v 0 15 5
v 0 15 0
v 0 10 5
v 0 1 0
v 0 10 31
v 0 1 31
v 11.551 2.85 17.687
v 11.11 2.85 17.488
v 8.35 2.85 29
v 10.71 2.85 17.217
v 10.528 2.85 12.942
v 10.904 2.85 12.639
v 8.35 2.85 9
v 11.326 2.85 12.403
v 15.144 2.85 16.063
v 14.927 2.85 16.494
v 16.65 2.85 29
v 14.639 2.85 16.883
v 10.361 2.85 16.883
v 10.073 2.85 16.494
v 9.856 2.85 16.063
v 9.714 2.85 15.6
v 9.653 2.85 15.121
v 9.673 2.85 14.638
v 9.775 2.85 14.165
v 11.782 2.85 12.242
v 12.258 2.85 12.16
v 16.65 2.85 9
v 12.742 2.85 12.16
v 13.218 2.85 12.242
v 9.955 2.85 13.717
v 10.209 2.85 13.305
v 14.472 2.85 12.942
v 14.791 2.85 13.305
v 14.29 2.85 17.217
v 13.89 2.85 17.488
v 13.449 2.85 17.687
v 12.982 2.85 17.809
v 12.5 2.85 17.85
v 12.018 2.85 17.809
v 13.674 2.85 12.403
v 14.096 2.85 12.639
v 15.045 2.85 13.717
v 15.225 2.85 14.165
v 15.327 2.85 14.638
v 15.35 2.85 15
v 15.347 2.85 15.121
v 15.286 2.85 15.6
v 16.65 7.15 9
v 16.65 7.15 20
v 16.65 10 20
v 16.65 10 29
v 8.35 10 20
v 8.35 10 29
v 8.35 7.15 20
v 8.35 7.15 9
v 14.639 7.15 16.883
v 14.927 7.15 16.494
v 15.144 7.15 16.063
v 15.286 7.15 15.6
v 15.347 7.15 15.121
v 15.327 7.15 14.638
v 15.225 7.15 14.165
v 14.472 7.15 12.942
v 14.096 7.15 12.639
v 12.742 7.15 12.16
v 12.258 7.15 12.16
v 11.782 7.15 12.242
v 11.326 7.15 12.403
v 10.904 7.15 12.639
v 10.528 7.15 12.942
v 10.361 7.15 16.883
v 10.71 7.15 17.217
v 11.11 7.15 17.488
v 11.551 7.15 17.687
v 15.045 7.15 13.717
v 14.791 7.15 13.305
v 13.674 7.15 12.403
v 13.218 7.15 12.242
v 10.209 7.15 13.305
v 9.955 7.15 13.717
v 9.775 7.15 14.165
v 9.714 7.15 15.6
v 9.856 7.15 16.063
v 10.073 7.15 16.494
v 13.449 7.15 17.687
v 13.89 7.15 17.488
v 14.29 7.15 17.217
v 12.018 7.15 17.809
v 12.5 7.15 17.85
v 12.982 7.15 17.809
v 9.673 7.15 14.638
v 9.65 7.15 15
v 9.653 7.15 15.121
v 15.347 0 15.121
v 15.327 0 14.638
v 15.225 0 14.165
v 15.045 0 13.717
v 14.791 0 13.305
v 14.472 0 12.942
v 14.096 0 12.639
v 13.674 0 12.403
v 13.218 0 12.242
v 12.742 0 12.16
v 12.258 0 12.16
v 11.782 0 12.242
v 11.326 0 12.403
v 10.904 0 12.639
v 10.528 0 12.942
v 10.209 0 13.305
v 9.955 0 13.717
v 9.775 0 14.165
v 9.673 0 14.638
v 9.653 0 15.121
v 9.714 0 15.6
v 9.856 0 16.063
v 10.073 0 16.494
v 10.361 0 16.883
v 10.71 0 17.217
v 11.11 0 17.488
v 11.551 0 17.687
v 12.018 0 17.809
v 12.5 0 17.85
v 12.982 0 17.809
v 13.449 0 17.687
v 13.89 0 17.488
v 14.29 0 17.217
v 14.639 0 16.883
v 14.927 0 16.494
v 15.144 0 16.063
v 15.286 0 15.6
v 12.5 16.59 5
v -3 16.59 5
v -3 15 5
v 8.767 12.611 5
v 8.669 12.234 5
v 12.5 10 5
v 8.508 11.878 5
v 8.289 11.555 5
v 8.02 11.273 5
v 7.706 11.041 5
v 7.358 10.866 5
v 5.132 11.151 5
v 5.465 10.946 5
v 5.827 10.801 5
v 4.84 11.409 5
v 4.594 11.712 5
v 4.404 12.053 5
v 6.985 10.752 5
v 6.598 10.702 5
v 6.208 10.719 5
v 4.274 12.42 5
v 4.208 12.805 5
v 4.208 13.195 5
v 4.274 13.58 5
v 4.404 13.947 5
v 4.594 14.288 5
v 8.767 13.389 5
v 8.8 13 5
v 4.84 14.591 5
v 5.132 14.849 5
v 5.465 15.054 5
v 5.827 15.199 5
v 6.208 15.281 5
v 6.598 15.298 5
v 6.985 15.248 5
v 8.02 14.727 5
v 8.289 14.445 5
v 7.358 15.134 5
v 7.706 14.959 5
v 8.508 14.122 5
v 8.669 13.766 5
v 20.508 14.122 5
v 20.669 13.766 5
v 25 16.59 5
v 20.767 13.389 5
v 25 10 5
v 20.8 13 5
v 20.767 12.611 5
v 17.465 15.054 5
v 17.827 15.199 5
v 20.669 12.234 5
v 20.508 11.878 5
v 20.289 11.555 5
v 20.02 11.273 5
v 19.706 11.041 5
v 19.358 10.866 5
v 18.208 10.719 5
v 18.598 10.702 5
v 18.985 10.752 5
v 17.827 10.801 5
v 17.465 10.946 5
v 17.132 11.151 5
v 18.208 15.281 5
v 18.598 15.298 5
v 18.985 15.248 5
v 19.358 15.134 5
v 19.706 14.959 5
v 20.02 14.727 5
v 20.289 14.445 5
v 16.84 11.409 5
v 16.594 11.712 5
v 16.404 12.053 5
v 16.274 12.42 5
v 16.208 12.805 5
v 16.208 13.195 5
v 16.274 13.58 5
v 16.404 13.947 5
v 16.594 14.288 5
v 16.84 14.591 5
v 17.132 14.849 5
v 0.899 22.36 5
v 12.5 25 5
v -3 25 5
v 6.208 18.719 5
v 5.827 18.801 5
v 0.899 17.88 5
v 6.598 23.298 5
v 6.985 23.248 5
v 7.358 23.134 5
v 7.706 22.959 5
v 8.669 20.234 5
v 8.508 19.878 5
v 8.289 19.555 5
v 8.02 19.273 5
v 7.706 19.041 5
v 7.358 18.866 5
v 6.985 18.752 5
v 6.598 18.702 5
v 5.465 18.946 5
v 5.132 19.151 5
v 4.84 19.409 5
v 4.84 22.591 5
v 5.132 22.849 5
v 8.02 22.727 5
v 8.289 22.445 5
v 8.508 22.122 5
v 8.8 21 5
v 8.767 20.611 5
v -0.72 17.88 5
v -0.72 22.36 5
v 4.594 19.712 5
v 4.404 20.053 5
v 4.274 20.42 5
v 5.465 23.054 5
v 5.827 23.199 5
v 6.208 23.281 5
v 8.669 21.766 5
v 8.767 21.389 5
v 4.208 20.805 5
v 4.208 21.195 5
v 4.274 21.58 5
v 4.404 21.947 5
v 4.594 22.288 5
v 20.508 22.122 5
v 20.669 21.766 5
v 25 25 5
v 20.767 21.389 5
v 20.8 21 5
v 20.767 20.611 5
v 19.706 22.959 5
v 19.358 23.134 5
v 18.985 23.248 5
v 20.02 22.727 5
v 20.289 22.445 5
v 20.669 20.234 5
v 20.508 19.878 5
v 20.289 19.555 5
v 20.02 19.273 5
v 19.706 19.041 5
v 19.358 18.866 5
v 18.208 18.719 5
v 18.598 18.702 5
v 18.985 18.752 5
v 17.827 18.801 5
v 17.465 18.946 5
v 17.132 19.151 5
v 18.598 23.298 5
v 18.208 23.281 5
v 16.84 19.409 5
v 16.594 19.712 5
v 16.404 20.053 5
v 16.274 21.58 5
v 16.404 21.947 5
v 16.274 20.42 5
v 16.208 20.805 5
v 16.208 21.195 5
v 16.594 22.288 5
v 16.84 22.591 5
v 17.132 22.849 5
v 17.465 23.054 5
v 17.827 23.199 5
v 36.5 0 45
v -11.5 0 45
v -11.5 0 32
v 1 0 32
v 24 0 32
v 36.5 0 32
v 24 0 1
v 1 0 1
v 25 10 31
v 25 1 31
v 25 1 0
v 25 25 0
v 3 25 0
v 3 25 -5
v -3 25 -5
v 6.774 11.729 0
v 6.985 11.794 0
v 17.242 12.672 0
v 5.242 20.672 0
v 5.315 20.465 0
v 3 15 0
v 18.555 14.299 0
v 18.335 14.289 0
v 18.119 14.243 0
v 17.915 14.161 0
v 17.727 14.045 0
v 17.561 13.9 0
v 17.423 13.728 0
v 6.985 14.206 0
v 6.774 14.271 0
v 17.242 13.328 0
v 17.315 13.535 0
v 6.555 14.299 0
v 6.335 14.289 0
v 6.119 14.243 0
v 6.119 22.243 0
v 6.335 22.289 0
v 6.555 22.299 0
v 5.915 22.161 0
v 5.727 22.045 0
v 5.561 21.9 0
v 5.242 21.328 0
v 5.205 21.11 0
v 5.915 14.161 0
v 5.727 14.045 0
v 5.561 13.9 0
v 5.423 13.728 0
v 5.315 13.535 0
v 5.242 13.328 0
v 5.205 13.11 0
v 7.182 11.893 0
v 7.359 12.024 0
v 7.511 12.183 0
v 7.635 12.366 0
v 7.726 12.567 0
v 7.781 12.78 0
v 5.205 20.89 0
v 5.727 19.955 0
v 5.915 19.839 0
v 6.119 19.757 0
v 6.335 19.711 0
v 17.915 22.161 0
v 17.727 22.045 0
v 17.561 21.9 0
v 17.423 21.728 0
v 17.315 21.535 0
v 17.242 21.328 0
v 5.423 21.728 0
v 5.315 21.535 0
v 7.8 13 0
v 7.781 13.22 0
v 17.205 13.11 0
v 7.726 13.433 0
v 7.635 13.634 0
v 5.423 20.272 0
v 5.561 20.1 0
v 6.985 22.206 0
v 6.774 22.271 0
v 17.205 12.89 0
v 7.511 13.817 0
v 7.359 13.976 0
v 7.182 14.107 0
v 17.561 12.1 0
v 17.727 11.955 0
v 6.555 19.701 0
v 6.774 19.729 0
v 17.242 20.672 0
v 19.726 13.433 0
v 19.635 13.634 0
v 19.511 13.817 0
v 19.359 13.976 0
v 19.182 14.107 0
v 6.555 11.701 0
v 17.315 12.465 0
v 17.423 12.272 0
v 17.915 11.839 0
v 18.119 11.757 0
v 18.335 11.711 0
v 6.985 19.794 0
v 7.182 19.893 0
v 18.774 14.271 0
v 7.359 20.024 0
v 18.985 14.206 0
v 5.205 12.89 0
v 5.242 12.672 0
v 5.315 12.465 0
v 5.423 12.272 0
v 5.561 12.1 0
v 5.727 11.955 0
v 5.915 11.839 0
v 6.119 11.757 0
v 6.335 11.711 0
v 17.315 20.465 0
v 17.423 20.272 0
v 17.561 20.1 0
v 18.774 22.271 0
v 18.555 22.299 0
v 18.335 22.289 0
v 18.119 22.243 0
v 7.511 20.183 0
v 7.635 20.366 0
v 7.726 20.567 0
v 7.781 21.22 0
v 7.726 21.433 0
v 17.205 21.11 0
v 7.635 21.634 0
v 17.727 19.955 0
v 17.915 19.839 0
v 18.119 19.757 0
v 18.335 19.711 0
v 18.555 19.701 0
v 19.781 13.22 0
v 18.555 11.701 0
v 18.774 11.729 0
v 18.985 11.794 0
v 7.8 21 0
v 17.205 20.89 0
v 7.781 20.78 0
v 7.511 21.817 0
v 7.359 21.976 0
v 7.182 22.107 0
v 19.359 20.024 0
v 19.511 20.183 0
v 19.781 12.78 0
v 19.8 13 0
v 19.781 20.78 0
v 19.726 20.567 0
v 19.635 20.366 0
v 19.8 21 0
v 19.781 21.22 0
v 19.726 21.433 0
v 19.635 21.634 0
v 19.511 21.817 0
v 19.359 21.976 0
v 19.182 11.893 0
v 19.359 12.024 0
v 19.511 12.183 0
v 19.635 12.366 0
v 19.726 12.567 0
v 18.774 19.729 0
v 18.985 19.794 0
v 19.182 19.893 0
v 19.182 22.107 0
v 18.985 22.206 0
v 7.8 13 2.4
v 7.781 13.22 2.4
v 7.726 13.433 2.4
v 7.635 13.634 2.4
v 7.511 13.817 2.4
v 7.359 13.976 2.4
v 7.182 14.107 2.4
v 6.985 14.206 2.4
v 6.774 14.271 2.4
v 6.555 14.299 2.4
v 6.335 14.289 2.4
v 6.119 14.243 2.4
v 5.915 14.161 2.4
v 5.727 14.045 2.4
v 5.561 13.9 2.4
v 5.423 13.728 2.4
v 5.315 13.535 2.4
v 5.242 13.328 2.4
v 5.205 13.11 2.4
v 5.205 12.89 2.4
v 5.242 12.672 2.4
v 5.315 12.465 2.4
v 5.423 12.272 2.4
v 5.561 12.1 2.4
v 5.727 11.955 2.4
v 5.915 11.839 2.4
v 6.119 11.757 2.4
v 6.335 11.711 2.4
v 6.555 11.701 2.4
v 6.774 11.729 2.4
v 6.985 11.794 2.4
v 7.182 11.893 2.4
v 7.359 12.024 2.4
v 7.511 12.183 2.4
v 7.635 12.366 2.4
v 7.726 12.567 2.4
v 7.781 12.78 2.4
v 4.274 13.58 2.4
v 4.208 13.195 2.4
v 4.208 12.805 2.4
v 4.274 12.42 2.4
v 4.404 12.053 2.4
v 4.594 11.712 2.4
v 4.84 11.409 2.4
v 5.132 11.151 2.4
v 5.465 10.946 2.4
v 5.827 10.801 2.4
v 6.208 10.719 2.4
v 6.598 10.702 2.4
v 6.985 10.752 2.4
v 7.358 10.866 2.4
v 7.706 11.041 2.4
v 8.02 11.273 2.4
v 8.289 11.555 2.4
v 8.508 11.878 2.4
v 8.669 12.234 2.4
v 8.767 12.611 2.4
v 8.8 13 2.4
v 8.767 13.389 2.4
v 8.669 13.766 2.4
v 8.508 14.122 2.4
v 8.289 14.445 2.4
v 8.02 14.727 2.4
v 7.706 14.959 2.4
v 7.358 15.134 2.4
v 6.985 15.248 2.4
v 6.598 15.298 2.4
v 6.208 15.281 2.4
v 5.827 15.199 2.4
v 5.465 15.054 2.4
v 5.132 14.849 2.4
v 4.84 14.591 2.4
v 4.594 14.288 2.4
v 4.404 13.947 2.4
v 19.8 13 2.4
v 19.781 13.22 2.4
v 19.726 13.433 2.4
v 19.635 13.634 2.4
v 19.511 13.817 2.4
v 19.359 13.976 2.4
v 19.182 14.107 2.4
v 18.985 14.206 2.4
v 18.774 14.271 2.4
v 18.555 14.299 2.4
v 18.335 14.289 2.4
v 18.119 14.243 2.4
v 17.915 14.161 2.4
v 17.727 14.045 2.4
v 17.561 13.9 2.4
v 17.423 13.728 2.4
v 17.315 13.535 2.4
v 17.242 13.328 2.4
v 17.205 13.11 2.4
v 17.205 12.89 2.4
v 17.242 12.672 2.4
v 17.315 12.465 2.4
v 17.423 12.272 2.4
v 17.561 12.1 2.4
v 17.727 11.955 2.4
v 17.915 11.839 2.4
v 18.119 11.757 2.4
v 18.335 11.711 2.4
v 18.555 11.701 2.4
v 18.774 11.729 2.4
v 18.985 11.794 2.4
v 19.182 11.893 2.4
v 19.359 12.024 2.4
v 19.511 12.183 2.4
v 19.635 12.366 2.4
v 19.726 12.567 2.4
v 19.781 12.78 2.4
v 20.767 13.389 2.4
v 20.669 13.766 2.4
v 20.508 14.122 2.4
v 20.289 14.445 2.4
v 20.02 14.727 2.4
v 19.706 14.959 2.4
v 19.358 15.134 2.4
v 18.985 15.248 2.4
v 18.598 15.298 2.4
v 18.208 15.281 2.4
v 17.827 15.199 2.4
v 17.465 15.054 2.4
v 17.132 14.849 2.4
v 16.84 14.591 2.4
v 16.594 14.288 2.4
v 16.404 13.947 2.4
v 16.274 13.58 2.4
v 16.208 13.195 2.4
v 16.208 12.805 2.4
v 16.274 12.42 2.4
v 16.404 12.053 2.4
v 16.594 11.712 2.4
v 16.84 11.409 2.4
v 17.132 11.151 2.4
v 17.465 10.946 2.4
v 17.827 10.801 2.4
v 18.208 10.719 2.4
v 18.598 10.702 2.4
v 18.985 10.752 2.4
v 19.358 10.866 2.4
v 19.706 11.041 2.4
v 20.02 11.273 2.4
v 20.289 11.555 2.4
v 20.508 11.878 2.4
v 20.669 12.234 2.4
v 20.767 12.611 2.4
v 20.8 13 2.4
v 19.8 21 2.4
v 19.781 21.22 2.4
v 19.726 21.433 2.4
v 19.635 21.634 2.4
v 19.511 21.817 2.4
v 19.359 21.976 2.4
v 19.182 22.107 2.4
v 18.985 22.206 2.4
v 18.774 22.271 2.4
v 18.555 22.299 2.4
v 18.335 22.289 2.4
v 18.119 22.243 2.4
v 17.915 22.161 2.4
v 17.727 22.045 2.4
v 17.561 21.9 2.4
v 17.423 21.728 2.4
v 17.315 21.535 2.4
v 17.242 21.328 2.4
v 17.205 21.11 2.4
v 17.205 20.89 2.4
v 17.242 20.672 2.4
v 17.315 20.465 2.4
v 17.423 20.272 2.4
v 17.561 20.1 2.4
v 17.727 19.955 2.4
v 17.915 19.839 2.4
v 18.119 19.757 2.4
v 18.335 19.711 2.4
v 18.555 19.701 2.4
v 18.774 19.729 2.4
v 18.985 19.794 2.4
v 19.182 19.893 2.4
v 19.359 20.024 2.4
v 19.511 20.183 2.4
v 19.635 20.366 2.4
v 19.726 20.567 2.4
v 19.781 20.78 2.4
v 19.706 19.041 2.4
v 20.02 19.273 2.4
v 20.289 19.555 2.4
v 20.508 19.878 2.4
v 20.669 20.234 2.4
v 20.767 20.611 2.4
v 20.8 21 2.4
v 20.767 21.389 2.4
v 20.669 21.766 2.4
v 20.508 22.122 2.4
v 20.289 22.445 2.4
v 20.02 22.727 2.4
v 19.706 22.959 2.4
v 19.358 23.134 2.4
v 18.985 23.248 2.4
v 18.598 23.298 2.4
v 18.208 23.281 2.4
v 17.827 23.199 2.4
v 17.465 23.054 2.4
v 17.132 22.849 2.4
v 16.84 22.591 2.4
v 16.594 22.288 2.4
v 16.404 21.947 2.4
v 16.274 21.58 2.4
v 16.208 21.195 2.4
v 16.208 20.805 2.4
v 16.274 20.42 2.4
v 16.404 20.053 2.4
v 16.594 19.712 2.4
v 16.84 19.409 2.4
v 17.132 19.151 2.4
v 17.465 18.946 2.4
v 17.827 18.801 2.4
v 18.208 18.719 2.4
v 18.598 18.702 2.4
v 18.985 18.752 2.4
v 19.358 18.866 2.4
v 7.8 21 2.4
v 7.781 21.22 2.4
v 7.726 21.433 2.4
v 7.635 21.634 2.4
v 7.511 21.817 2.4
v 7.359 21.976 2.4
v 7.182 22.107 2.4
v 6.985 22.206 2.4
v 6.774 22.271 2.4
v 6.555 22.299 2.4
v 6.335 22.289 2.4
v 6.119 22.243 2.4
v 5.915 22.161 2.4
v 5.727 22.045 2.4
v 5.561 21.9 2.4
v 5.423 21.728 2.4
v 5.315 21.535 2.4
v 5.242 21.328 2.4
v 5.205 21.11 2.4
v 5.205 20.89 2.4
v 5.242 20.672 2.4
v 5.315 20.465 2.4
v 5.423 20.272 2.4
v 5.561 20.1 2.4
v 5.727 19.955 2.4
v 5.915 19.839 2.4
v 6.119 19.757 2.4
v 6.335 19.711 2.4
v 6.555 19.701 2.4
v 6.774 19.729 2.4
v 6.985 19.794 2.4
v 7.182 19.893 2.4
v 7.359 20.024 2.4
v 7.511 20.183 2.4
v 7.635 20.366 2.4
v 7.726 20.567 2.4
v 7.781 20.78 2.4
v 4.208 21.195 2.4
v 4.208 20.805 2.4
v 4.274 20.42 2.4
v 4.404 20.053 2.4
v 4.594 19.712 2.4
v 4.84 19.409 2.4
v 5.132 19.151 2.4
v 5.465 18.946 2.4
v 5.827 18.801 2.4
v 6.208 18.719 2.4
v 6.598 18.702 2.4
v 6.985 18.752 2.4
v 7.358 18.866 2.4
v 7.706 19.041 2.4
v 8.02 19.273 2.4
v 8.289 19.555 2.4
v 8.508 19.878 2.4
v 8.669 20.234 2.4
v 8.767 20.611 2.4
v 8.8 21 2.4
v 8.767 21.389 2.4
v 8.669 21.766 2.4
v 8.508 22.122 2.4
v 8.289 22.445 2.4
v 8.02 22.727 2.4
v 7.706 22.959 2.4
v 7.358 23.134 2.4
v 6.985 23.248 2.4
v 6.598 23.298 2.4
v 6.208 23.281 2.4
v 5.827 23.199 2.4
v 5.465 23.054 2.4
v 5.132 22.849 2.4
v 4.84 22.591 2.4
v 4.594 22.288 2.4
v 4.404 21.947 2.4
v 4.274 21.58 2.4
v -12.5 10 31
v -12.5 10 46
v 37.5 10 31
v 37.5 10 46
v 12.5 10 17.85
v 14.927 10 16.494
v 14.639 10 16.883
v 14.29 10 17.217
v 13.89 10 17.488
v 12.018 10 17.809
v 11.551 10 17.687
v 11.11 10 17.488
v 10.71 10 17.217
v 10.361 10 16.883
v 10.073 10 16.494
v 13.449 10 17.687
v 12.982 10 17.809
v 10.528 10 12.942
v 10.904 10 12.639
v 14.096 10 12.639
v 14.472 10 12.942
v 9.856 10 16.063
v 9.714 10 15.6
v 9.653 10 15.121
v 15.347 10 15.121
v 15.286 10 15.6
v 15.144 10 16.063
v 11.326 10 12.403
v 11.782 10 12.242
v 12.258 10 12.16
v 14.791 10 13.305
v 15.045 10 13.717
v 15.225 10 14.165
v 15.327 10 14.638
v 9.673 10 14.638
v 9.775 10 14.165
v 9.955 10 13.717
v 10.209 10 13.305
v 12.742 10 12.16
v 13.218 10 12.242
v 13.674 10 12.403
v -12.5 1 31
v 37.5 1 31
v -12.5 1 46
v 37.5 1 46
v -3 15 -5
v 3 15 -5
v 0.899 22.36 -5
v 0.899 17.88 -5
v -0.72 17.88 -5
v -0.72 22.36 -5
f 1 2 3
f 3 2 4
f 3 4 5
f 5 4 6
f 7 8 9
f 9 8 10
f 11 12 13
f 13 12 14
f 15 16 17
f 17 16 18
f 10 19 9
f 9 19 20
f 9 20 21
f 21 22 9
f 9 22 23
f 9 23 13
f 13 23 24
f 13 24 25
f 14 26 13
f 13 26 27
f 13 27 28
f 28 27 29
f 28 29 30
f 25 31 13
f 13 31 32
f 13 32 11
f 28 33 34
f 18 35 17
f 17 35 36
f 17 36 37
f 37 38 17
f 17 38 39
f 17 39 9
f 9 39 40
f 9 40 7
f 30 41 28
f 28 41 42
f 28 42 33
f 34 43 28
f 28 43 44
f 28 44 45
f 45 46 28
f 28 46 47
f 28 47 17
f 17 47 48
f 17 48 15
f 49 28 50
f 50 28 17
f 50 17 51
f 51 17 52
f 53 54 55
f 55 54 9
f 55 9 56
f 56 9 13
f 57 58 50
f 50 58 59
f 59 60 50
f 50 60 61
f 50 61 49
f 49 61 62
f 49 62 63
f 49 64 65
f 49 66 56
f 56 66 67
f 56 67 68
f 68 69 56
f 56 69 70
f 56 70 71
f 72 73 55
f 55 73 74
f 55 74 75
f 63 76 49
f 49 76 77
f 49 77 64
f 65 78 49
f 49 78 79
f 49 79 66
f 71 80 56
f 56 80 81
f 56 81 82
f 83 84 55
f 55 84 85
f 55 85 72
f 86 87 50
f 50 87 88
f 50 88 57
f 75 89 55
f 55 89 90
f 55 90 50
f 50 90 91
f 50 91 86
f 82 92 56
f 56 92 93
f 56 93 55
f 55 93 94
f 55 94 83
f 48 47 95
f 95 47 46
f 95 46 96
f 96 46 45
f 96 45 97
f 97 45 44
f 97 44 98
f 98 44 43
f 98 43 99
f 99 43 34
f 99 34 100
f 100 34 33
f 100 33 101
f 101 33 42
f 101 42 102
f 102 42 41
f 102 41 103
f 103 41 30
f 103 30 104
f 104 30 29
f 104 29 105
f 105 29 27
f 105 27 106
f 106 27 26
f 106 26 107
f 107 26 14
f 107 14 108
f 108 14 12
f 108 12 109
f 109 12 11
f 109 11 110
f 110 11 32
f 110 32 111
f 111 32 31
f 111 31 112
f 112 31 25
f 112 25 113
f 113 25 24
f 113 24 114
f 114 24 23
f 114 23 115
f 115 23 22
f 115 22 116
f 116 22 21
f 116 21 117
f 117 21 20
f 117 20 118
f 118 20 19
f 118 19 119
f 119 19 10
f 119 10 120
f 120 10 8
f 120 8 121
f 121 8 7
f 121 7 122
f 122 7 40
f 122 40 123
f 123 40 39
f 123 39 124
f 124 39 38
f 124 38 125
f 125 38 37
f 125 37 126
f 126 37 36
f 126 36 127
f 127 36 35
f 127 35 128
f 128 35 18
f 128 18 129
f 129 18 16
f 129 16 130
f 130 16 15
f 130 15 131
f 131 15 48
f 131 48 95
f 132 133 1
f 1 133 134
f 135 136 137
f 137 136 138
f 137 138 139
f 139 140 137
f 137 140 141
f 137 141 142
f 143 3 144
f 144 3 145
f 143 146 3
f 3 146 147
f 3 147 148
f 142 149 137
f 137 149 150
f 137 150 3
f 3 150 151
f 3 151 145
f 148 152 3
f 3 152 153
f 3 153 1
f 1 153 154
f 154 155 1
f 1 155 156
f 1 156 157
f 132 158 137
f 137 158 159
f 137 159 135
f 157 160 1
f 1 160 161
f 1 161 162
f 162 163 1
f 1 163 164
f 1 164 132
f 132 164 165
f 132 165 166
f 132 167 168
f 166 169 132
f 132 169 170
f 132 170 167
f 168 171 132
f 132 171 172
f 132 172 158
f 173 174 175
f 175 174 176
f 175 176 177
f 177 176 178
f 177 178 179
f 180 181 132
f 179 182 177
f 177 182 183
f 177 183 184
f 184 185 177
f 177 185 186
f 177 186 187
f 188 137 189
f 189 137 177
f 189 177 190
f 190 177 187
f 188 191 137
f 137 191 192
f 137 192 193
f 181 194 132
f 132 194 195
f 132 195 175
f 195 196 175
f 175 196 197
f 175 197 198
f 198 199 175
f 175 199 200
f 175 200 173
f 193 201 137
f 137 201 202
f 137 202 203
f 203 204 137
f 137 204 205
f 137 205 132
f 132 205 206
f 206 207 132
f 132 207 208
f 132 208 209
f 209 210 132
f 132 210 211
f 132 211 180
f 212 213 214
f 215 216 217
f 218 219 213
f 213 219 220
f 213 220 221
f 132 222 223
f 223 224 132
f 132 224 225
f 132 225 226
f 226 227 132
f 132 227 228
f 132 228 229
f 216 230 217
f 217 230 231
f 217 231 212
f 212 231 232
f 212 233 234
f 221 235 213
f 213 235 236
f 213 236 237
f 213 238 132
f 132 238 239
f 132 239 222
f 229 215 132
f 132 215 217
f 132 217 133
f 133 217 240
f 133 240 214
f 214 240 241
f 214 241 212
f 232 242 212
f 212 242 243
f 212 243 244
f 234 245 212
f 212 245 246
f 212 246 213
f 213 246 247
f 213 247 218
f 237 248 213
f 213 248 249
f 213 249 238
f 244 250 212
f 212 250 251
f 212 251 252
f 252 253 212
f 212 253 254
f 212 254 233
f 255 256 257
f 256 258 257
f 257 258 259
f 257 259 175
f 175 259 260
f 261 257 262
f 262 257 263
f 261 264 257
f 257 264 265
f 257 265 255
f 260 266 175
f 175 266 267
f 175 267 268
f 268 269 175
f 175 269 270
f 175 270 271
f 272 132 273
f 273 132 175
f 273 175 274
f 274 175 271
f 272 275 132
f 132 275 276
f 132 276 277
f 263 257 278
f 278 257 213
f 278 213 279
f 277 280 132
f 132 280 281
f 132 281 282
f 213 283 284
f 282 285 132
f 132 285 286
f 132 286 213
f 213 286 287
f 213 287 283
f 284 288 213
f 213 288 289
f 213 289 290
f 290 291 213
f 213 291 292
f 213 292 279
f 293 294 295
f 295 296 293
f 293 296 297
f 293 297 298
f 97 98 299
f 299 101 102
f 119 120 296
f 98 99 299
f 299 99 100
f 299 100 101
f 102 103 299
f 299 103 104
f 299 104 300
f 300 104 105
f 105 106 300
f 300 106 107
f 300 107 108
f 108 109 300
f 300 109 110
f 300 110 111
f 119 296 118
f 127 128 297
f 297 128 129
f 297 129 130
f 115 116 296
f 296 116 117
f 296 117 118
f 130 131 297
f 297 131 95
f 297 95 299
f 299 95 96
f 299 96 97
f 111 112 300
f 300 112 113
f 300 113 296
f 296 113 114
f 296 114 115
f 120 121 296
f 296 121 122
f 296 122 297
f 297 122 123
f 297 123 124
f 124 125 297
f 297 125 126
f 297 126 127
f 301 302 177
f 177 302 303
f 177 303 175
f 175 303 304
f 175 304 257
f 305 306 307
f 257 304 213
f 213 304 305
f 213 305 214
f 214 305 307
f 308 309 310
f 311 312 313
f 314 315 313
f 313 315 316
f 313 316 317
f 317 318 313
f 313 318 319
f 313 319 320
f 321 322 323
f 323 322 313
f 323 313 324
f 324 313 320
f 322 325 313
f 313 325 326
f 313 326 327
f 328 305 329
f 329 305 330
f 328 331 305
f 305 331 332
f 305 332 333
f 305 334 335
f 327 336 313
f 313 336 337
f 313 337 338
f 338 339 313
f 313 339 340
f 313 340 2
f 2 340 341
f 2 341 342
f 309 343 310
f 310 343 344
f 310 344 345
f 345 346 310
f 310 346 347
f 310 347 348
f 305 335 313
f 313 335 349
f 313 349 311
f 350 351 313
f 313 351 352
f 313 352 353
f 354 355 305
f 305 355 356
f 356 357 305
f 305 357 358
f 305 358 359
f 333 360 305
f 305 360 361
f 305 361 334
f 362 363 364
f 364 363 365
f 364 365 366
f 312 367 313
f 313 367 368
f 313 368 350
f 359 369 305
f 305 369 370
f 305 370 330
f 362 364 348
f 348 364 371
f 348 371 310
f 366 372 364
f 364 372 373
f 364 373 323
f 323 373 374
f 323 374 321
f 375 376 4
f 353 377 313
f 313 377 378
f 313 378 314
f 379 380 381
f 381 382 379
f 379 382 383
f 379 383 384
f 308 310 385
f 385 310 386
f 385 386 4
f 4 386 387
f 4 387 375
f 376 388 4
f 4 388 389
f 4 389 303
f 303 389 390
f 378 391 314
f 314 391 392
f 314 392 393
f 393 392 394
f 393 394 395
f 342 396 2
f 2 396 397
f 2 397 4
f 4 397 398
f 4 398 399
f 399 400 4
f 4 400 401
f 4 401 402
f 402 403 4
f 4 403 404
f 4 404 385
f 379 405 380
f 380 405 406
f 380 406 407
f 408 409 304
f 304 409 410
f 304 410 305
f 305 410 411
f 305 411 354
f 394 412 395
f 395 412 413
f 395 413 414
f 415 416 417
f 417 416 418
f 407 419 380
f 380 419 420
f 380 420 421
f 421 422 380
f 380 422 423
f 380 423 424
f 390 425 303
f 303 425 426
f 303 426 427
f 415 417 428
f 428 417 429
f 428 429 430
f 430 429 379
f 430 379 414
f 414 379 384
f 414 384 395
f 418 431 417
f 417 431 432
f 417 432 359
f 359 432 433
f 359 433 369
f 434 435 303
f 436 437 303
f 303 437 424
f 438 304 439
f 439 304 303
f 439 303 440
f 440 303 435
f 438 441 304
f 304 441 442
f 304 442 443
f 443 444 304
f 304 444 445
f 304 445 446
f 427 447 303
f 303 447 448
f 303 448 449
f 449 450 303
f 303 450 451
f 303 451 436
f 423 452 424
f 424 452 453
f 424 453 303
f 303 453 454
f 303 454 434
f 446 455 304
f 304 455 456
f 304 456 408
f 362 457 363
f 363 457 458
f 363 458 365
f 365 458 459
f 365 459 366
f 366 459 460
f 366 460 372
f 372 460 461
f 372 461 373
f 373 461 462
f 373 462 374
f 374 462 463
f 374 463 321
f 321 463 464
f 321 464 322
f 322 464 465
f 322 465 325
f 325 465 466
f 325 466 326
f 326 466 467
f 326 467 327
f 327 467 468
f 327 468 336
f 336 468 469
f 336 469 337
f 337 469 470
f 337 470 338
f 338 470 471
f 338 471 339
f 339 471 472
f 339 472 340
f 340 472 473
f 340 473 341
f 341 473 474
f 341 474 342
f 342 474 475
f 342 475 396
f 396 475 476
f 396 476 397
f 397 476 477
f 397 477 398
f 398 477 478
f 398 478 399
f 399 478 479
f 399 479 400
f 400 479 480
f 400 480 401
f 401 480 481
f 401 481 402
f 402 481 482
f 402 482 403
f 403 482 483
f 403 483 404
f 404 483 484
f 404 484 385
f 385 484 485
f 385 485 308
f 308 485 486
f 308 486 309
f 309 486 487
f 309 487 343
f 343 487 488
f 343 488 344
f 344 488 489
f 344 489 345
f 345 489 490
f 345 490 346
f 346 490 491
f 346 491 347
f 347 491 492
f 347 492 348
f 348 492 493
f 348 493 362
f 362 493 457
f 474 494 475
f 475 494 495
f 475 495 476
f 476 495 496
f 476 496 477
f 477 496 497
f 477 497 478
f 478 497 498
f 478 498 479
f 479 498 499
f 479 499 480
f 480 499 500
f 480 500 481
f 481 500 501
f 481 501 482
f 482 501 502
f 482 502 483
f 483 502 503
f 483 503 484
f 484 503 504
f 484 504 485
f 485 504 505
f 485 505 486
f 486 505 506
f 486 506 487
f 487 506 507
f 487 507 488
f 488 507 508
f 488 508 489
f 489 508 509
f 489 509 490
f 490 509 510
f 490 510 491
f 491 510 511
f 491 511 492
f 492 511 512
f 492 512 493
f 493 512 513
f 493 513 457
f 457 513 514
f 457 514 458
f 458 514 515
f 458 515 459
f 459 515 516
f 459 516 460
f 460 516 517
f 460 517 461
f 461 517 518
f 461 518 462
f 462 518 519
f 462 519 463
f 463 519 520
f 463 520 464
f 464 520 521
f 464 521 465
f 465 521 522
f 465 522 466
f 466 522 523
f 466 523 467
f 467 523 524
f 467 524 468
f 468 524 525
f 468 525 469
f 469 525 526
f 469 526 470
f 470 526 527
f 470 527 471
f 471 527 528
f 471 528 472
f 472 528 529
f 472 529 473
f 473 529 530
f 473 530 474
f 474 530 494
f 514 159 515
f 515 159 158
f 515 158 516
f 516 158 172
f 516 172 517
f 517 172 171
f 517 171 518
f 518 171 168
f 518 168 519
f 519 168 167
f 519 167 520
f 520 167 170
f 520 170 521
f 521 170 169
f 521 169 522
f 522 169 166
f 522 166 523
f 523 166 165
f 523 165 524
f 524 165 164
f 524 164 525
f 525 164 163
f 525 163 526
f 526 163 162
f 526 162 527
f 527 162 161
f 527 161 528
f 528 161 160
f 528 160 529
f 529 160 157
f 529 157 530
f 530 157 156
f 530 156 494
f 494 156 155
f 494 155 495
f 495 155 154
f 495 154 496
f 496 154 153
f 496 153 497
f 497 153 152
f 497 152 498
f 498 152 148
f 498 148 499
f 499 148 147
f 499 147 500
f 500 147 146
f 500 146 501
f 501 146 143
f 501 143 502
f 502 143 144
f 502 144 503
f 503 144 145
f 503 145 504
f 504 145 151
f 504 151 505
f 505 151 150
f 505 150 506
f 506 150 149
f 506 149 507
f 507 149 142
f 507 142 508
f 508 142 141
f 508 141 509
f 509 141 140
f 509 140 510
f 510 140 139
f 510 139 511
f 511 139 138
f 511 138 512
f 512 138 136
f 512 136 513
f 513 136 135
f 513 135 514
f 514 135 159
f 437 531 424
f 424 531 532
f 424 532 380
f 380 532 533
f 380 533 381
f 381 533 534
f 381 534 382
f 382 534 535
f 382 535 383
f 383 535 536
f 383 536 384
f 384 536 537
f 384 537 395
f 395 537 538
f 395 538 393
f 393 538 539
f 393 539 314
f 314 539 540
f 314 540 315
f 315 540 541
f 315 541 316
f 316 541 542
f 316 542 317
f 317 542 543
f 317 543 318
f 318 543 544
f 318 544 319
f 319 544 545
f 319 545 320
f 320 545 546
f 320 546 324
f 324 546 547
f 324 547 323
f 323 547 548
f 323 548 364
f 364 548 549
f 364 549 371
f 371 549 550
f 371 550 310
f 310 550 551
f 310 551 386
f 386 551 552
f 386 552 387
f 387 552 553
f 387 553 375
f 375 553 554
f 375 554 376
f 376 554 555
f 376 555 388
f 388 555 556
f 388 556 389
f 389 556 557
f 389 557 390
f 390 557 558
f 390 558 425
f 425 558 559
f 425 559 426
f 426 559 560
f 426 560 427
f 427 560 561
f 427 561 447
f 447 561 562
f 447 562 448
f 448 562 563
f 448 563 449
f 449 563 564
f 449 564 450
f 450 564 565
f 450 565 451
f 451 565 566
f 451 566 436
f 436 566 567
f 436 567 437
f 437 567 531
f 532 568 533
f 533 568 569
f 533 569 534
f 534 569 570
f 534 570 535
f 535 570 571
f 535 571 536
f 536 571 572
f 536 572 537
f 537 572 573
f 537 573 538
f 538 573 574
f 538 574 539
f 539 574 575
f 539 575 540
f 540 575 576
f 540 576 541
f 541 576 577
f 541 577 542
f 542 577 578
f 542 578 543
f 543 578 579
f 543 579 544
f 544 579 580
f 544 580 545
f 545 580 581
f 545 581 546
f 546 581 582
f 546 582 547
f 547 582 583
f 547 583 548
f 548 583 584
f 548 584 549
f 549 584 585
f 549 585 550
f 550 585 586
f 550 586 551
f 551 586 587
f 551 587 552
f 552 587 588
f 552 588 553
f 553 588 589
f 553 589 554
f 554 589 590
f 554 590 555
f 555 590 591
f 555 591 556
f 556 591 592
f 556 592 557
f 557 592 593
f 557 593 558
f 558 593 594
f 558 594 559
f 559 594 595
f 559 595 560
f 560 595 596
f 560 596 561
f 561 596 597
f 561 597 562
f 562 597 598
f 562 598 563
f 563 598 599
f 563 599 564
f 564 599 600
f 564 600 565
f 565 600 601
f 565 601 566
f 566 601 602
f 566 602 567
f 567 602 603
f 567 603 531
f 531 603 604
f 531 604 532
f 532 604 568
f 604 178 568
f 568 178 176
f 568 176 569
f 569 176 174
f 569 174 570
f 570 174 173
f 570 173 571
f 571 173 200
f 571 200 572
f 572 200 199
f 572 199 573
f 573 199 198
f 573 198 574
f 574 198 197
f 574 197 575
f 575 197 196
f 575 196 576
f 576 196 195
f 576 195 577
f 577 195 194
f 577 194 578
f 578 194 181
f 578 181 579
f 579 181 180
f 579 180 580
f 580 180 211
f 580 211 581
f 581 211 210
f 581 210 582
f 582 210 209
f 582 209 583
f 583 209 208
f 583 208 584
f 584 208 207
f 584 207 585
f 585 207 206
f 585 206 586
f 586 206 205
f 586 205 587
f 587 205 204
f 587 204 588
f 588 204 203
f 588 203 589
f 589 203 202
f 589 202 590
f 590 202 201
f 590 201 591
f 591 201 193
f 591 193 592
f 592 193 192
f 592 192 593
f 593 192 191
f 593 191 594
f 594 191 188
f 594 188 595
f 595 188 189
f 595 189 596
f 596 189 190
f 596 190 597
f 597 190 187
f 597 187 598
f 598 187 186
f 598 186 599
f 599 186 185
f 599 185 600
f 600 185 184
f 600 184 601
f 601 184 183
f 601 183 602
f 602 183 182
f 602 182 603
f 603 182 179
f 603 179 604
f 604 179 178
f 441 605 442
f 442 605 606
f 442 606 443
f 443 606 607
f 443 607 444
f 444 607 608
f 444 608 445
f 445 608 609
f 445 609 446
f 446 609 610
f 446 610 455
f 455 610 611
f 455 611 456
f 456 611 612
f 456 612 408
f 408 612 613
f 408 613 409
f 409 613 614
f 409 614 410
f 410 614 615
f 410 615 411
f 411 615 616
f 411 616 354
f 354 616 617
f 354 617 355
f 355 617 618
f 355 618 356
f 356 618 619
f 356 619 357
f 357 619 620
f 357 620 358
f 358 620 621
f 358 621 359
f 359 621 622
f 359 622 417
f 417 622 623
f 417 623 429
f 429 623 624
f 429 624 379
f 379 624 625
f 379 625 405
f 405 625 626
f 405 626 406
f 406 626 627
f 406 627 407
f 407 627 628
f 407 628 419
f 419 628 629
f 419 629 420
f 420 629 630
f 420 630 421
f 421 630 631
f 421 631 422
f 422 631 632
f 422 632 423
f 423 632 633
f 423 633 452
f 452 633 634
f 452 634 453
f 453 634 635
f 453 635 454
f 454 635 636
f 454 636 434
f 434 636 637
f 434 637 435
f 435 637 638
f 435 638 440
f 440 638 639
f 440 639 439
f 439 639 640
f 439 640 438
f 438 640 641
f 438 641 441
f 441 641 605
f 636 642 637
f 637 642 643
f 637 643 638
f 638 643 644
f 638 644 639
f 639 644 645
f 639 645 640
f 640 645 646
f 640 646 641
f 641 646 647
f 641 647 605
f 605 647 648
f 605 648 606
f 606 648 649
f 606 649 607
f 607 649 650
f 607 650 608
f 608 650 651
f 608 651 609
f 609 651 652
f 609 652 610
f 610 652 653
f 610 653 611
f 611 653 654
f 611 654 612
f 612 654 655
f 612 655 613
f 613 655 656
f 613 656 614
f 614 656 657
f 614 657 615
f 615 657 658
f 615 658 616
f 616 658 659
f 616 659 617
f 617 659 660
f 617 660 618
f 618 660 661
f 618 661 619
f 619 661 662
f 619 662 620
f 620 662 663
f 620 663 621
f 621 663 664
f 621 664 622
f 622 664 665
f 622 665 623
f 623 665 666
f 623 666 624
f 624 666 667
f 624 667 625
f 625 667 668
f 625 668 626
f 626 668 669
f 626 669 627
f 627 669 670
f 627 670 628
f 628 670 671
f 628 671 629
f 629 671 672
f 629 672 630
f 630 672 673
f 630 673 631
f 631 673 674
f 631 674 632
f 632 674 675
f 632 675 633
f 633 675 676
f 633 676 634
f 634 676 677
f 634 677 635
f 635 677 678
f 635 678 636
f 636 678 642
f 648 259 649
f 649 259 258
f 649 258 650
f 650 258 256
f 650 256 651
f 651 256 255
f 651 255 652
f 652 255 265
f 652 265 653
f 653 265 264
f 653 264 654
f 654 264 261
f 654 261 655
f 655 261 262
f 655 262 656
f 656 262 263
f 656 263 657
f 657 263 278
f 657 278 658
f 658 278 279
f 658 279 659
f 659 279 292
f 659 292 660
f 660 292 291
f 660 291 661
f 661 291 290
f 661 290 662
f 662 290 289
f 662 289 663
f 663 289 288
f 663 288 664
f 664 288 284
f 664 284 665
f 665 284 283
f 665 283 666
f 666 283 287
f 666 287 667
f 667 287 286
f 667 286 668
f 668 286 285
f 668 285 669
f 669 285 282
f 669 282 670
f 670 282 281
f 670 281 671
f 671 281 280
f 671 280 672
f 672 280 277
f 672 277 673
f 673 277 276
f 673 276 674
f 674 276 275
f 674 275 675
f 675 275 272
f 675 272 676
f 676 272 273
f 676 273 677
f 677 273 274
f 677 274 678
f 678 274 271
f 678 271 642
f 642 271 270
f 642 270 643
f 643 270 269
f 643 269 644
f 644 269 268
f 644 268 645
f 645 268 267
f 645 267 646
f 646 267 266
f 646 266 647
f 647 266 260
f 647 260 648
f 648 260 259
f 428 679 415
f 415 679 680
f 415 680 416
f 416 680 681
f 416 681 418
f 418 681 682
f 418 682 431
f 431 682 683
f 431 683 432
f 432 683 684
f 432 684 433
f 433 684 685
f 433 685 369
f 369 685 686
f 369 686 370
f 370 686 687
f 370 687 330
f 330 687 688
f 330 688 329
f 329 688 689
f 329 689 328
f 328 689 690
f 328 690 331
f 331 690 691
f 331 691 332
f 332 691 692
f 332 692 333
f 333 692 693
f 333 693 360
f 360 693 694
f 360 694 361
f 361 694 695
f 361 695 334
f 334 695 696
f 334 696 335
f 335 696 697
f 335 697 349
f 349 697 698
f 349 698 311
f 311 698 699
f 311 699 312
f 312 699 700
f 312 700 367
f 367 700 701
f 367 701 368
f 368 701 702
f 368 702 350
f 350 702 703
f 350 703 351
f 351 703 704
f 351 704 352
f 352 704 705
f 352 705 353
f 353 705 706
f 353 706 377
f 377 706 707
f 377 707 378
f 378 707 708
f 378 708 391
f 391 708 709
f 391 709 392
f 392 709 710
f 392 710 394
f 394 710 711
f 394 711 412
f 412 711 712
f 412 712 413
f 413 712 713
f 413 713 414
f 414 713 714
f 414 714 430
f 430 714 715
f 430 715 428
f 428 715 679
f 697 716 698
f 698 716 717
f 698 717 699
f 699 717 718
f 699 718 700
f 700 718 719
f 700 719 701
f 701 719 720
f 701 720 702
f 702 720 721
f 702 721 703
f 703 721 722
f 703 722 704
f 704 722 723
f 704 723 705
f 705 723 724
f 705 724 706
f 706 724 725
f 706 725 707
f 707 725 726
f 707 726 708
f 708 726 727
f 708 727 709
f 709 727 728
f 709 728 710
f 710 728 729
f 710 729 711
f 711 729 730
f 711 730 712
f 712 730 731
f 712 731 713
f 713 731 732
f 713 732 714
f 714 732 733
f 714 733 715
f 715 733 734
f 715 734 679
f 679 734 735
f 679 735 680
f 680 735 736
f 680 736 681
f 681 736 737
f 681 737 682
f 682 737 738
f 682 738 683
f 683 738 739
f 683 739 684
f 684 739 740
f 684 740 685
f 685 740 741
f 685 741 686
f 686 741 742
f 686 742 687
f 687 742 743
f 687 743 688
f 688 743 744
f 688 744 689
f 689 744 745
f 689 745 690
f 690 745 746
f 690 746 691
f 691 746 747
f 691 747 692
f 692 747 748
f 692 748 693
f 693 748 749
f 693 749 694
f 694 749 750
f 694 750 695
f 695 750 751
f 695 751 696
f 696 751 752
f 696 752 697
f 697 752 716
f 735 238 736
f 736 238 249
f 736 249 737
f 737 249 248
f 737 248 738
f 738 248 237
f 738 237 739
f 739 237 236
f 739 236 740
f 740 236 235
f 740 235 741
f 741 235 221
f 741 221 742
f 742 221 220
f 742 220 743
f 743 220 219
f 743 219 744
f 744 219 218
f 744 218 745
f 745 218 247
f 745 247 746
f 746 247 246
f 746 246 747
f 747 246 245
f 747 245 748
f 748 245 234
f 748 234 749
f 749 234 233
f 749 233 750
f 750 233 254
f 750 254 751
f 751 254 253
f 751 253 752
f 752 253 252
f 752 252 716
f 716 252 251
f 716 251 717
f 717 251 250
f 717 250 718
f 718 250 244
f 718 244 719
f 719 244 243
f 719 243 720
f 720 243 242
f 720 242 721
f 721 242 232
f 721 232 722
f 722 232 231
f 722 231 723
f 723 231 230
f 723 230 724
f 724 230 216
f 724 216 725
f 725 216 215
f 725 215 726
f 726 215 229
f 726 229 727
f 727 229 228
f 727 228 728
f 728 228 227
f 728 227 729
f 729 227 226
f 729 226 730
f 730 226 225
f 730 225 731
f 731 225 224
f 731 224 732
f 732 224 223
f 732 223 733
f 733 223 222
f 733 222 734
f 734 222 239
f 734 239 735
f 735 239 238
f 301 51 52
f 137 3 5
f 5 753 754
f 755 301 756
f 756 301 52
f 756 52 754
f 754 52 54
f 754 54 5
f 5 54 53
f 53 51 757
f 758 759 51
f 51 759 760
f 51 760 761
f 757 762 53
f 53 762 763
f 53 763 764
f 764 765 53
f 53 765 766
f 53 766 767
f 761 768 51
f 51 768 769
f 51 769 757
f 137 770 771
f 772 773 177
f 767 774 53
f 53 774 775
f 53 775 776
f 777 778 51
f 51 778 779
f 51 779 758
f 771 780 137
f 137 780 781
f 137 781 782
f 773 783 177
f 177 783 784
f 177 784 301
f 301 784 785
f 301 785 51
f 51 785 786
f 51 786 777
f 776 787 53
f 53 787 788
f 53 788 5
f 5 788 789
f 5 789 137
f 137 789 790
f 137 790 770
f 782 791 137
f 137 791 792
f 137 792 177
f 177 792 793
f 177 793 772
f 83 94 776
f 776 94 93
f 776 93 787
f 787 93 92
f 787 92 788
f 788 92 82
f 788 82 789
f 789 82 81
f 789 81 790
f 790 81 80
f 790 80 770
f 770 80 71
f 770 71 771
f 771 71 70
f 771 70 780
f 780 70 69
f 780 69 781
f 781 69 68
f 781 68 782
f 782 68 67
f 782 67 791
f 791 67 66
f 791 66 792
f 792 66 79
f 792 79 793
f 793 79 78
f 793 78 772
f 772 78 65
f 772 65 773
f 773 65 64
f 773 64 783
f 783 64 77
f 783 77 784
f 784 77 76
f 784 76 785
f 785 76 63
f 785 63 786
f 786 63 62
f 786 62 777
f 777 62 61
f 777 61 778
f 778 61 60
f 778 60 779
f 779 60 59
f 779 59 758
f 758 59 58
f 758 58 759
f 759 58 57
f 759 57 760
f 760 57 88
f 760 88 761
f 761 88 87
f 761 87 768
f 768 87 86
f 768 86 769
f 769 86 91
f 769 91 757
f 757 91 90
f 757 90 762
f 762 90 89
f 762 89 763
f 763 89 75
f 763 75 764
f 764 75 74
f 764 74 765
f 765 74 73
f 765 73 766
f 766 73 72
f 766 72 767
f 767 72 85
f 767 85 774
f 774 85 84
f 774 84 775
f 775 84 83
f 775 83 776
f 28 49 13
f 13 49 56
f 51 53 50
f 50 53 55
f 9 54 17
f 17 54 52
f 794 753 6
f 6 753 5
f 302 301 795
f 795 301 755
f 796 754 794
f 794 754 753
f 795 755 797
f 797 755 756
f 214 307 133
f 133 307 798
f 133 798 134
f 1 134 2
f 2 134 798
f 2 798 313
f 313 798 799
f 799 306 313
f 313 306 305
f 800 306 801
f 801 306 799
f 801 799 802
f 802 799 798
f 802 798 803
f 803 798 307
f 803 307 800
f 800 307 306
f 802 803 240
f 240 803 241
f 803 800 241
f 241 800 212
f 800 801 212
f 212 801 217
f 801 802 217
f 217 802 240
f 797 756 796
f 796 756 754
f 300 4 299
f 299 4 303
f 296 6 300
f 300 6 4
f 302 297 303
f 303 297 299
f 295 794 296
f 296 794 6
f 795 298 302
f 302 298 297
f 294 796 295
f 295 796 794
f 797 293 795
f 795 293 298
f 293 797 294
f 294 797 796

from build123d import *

# Parameters (mm, degrees)
SKETCH1_W                      = 25
SKETCH1_H                      = 25
BOSS_EXTRUDE1_DEPTH            = 5
CBORE_FOR_M2_SHCS1_D           = 2.6
CBORE_FOR_M2_SHCS1_CBORE_D     = 4.6
CBORE_FOR_M2_SHCS1_CBORE_DEPTH = 2.6
SKETCH5_W                      = 25
SKETCH5_H                      = 10
BOSS_EXTRUDE2_DEPTH            = 26
SKETCH6_R                      = 2.85
CUT_EXTRUDE1_DEPTH             = 43.555845662
SKETCH7_W                      = 8.3
SKETCH7_H                      = 4.3
CUT_EXTRUDE2_DEPTH             = 22
SKETCH8_W                      = 8.3
SKETCH8_H                      = 9
CUT_EXTRUDE3_DEPTH             = 2.85
SKETCH7_2_W                    = 8.3
SKETCH7_2_H                    = 4.3
BOSS_EXTRUDE5_DEPTH            = 2
SKETCH9_W                      = 50
SKETCH9_H                      = 10
BOSS_EXTRUDE3_DEPTH            = 20
SKETCH10_W                     = 50
SKETCH10_H                     = 7
CUT_EXTRUDE4_DEPTH             = 66.055745327
SKETCH11_W                     = 5
SKETCH11_H                     = 25
BOSS_EXTRUDE6_DEPTH            = 3
SKETCH12_W                     = 3
SKETCH12_H                     = 15
CUT_EXTRUDE5_DEPTH             = 60.600755029
SKETCH13_W                     = 6
SKETCH13_H                     = 10
BOSS_EXTRUDE7_DEPTH            = 5
SKETCH14_W                     = 1.219
SKETCH14_H                     = 4.08
CUT_EXTRUDE6_DEPTH             = 60.600755029
SKETCH15_W                     = 1.619
SKETCH15_H                     = 4.48
CUT_EXTRUDE7_DEPTH             = 60.600755029
SKETCH16_W                     = 50
SKETCH16_H                     = 10
BOSS_EXTRUDE8_DEPTH            = 2
CHAMFER1_SIZE                  = 1


with BuildPart() as part:
    # Sketch1 → Boss-Extrude1 (new body)
    with BuildSketch(Plane.XY):
        with Locations((12.5, 12.5)):
            Rectangle(SKETCH1_W, SKETCH1_H)
    extrude(amount=BOSS_EXTRUDE1_DEPTH)

    # CBORE for M2 SHCS1 (through all)
    with Locations(Plane.XY.offset(5)):
        with Locations((6.5, 21), (18.5, 21), (18.5, 13), (6.5, 13)):
            CounterBoreHole(CBORE_FOR_M2_SHCS1_D / 2, CBORE_FOR_M2_SHCS1_CBORE_D / 2, CBORE_FOR_M2_SHCS1_CBORE_DEPTH)

    # Sketch5 → Boss-Extrude2 (add)
    with BuildSketch(Plane.XY.offset(5)):
        with Locations((12.5, 5)):
            Rectangle(SKETCH5_W, SKETCH5_H)
    extrude(amount=BOSS_EXTRUDE2_DEPTH)

    # Sketch6 → Cut-Extrude1 (cut, through all)
    with BuildSketch(Plane(origin=(0, 10, 0), x_dir=(1, 0, 0), z_dir=(0, 1, 0))):
        with Locations(Location((12.5, -15, 0), (0, 0, 270))):
            Circle(SKETCH6_R)
    extrude(amount=-CUT_EXTRUDE1_DEPTH, mode=Mode.SUBTRACT)

    # Sketch7 → Cut-Extrude2 (cut)
    with BuildSketch(Plane.XY.offset(31)):
        with Locations((12.5, 5)):
            Rectangle(SKETCH7_W, SKETCH7_H)
    extrude(amount=-CUT_EXTRUDE2_DEPTH, mode=Mode.SUBTRACT)

    # Sketch8 → Cut-Extrude3 (cut)
    with BuildSketch(Plane(origin=(0, 10, 0), x_dir=(1, 0, 0), z_dir=(0, 1, 0))):
        with Locations((12.5, -24.5)):
            Rectangle(SKETCH8_W, SKETCH8_H)
    extrude(amount=-CUT_EXTRUDE3_DEPTH, mode=Mode.SUBTRACT)

    # Sketch7<2> → Boss-Extrude5 (add)
    with BuildSketch(Plane.XY.offset(31)):
        with Locations((12.5, 5)):
            Rectangle(SKETCH7_2_W, SKETCH7_2_H)
    extrude(amount=-BOSS_EXTRUDE5_DEPTH)

    # Sketch9 → Boss-Extrude3 (add)
    with BuildSketch(Plane.XY.offset(31)):
        with Locations((12.5, 5)):
            Rectangle(SKETCH9_W, SKETCH9_H)
    extrude(amount=BOSS_EXTRUDE3_DEPTH)

    # Sketch10 → Cut-Extrude4 (cut, through all)
    with BuildSketch(Plane(origin=(0, 10, 0), x_dir=(1, 0, 0), z_dir=(0, 1, 0))):
        with Locations((12.5, -47.5)):
            Rectangle(SKETCH10_W, SKETCH10_H)
    extrude(amount=-CUT_EXTRUDE4_DEPTH, mode=Mode.SUBTRACT)

    # Sketch11 → Boss-Extrude6 (add)
    with BuildSketch(Plane.ZY):
        with Locations((2.5, 12.5)):
            Rectangle(SKETCH11_W, SKETCH11_H)
    extrude(amount=BOSS_EXTRUDE6_DEPTH)

    # Sketch12 → Cut-Extrude5 (cut, through all)
    with BuildSketch(Plane.XY.offset(5)):
        with Locations((-1.5, 7.5)):
            Rectangle(SKETCH12_W, SKETCH12_H)
    extrude(amount=-CUT_EXTRUDE5_DEPTH, mode=Mode.SUBTRACT)

    # Sketch13 → Boss-Extrude7 (add)
    with BuildSketch(Plane(origin=(0, 0, 0), x_dir=(-1, 0, 0), z_dir=(0, 0, -1))):
        with Locations((0, 20)):
            Rectangle(SKETCH13_W, SKETCH13_H)
    extrude(amount=BOSS_EXTRUDE7_DEPTH)

    # Sketch14 → Cut-Extrude6 (cut, through all)
    with BuildSketch(Plane.XY.offset(5)):
        with Locations((0.0895, 20.12)):
            Rectangle(SKETCH14_W, SKETCH14_H)
    extrude(amount=-CUT_EXTRUDE6_DEPTH, mode=Mode.SUBTRACT)

    # Sketch15 → Cut-Extrude7 (cut, through all)
    with BuildSketch(Plane.XY.offset(5)):
        with Locations((0.0895, 20.12)):
            Rectangle(SKETCH15_W, SKETCH15_H)
    extrude(amount=-CUT_EXTRUDE7_DEPTH, mode=Mode.SUBTRACT)

    # Sketch16 → Boss-Extrude8 (add)
    with BuildSketch(Plane.XY.offset(44)):
        with Locations((12.5, 5)):
            Rectangle(SKETCH16_W, SKETCH16_H)
    extrude(amount=BOSS_EXTRUDE8_DEPTH)

    # Chamfer1
    chamfer1_edges = [part.edges().sort_by_distance(p)[0] for p in [
        (-6.25, 0, 31),
        (31.25, 0, 31),
        (37.5, 0, 38.5),
        (-12.5, 0, 38.5),
        (12.5, 0, 0),
        (12.5, 0, 46),
        (25, 0, 15.5),
        (0, 0, 15.5),
    ]]
    chamfer(chamfer1_edges, length=CHAMFER1_SIZE)


solid = part.part
